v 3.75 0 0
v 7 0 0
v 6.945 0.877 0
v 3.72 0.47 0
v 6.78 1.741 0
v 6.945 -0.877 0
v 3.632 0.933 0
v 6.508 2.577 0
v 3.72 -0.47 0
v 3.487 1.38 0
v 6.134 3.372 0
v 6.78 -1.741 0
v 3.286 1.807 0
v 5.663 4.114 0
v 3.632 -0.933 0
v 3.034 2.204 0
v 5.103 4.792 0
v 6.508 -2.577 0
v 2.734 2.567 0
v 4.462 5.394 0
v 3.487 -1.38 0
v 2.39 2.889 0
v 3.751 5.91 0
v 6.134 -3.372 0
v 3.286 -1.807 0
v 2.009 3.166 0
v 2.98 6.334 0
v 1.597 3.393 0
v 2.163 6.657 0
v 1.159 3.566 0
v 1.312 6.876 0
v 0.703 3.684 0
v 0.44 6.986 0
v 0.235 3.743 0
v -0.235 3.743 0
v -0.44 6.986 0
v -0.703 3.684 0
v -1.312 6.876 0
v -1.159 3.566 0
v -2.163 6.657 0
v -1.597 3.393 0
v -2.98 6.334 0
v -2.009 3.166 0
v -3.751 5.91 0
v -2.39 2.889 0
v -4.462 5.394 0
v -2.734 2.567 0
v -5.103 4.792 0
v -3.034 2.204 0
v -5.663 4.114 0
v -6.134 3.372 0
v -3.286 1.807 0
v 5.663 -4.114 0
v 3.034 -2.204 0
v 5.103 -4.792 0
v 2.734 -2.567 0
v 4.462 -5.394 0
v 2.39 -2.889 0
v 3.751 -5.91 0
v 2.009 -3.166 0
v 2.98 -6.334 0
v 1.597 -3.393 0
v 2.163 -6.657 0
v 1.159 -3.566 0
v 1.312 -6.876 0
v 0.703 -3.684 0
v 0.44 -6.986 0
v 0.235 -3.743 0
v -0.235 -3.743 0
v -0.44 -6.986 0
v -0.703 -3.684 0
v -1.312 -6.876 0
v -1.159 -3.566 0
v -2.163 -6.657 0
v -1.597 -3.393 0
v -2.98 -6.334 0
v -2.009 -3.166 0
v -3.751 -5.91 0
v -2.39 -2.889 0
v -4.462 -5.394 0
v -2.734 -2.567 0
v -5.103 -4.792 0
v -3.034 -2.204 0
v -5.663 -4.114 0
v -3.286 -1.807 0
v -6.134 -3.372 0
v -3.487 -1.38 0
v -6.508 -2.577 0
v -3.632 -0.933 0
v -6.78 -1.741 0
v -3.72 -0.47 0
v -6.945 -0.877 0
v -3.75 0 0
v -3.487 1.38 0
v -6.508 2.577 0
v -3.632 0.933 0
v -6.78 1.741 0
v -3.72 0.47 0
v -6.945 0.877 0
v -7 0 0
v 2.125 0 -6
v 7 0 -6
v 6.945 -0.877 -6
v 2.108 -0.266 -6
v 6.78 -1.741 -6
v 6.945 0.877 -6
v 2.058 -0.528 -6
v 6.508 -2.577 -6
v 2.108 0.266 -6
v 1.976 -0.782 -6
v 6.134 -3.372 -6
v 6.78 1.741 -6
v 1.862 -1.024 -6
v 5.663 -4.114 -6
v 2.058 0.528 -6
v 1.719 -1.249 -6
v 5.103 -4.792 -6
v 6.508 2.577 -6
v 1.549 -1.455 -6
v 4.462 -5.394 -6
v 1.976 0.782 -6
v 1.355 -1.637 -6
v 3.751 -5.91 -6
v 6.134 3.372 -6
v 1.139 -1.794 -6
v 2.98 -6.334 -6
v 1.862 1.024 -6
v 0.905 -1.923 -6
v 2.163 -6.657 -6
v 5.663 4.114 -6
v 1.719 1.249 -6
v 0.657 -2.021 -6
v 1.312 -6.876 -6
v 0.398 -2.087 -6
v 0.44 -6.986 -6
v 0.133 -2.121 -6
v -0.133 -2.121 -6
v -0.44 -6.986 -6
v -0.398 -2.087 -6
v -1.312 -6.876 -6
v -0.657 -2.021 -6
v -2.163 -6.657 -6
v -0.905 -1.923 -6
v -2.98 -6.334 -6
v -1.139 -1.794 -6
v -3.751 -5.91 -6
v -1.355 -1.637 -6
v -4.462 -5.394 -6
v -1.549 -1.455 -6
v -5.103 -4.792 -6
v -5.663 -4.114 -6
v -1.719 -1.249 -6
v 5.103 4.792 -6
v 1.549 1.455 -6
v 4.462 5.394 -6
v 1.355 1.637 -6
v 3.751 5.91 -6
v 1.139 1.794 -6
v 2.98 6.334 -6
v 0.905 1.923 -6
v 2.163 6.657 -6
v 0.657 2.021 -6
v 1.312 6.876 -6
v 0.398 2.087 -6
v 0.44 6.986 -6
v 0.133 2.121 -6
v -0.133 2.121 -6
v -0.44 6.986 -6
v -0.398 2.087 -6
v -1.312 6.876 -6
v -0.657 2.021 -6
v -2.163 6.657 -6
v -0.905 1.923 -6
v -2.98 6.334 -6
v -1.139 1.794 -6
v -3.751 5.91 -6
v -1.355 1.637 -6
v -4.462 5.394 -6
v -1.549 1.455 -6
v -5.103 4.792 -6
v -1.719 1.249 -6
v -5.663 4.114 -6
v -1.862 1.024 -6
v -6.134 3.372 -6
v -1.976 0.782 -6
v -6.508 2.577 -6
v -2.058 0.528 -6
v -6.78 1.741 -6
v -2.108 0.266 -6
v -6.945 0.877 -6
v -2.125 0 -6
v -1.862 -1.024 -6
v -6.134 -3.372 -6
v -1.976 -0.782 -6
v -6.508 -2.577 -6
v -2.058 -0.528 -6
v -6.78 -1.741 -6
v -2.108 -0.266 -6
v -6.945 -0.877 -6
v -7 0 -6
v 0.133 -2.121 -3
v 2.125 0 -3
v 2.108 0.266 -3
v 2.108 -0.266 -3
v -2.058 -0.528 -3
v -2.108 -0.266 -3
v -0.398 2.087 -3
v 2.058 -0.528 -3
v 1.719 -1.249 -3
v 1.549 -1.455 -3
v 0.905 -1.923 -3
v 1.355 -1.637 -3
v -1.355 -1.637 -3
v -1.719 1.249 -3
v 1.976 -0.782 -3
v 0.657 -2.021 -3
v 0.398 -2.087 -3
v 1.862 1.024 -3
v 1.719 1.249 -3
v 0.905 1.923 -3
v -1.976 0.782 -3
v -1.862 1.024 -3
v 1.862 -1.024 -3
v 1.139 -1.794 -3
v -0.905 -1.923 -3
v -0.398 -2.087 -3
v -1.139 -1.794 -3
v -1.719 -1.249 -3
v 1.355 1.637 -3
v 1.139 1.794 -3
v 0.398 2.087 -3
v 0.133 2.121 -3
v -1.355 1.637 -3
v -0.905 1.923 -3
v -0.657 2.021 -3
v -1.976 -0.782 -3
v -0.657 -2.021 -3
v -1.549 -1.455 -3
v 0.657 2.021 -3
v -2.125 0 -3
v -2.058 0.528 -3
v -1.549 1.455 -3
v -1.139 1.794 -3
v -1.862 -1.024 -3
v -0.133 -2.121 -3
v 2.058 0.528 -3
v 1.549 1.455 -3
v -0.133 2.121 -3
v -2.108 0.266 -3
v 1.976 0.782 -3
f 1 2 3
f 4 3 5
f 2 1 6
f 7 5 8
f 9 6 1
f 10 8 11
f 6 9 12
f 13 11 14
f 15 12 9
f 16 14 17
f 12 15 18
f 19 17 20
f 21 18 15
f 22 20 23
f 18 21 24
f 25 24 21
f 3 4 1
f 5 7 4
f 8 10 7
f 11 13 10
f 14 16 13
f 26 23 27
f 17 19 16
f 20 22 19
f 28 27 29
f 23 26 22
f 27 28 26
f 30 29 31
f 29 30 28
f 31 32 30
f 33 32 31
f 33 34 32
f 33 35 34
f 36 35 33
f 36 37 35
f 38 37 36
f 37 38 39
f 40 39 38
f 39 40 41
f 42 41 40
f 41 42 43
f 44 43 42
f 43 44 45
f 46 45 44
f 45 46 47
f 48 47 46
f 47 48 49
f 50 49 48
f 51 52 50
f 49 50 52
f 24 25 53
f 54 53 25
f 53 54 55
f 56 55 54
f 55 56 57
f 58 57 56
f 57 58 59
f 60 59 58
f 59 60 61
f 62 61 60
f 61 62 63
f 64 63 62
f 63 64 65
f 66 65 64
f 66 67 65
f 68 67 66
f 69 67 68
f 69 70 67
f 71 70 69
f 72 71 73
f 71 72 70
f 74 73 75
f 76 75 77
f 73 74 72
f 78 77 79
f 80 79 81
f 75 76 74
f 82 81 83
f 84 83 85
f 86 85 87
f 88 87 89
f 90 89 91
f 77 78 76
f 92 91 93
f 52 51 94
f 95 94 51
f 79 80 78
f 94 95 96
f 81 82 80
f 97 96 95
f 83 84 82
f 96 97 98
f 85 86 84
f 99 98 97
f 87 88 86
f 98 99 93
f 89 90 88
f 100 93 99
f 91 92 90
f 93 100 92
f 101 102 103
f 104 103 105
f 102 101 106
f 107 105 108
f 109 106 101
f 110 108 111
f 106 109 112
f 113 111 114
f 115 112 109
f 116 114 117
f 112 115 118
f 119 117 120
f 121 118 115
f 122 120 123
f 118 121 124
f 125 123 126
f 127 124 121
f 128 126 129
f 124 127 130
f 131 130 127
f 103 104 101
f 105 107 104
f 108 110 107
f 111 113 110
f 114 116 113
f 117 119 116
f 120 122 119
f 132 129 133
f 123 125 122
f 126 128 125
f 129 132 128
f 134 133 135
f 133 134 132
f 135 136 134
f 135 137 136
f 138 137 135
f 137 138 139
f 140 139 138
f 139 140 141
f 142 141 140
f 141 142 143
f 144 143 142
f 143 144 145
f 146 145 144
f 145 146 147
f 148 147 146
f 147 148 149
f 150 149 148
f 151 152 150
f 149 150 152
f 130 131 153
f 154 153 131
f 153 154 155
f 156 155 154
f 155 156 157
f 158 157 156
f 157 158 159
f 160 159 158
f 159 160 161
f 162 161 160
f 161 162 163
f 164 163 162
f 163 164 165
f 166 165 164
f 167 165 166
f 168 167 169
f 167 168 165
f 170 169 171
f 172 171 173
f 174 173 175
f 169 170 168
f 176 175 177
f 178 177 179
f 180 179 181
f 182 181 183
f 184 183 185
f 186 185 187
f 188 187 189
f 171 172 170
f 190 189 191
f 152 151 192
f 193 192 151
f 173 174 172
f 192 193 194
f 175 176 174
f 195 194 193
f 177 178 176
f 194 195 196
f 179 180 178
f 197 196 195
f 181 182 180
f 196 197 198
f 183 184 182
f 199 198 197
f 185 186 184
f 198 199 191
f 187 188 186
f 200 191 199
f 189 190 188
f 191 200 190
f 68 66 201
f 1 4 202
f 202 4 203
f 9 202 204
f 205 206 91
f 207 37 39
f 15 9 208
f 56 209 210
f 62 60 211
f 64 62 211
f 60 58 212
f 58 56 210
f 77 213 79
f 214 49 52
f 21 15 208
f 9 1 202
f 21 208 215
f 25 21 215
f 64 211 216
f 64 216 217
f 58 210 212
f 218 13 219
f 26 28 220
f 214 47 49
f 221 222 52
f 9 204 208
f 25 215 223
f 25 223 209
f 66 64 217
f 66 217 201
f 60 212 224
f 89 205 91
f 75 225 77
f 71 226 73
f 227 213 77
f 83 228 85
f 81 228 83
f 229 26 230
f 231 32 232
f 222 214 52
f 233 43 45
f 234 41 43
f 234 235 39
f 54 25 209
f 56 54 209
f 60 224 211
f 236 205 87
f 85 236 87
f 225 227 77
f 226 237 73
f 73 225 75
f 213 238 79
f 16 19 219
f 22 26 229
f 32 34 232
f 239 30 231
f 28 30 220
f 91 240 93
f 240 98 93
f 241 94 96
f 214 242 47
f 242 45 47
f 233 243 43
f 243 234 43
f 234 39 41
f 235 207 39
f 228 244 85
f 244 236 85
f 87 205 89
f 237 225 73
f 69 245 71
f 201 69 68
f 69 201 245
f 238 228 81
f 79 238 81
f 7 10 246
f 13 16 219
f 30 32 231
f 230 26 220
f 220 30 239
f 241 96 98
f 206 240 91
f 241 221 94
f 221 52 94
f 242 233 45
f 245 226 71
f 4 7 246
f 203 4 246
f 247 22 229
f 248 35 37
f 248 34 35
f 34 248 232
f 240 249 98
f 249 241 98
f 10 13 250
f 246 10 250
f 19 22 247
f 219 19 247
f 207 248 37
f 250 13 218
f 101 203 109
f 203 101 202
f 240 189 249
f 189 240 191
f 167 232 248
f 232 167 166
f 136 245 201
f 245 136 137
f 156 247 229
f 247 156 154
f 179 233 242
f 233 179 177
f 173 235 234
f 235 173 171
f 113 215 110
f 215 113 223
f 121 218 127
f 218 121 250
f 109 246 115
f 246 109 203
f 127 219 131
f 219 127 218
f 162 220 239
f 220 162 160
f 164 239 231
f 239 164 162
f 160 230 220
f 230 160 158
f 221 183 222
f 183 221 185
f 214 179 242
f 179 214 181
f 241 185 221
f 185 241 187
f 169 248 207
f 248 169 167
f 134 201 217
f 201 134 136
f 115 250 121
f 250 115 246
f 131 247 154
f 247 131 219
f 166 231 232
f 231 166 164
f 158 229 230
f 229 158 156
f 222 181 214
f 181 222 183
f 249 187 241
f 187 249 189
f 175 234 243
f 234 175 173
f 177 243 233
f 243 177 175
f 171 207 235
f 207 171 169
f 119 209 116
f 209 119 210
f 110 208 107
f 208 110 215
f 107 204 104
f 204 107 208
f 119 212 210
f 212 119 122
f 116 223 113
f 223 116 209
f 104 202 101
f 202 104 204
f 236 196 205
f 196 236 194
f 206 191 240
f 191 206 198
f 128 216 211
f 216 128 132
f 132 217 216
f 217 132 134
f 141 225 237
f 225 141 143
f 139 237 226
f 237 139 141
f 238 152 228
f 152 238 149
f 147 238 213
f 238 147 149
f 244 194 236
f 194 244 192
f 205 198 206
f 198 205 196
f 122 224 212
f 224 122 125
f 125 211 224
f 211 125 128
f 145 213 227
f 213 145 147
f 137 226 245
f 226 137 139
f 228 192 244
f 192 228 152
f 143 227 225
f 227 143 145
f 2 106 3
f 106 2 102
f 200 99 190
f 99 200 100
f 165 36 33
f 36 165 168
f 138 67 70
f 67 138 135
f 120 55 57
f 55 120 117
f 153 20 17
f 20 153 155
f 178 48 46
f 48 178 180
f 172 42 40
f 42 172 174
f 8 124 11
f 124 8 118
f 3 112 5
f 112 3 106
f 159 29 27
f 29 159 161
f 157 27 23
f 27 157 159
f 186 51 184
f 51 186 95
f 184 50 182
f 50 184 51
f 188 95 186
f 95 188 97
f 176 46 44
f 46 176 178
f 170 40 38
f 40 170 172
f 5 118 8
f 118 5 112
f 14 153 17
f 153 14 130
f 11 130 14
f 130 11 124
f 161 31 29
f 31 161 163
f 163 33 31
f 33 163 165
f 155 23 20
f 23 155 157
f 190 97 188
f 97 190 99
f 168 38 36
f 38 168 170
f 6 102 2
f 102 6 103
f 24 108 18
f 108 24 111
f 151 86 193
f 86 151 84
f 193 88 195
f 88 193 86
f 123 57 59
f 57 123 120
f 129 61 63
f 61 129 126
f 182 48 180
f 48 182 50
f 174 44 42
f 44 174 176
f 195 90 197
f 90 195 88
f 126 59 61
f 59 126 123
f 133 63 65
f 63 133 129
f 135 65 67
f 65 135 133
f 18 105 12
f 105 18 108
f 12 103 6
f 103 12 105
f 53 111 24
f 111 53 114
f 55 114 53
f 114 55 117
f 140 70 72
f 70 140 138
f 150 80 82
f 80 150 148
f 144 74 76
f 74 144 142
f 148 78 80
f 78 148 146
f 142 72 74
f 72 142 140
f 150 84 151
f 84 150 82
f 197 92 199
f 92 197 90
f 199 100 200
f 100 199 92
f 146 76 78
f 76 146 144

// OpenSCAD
$fn = 50;


difference() {
	union() {
		translate(v = [0, 0, -6.0000000000]) {
			cylinder(h = 6, r = 7.0000000000);
		}
		cylinder(h = 0, r = 17.0000000000);
	}
	union() {
		translate(v = [0, 0, 0]) {
			rotate(a = [0, 0, 0]) {
				difference() {
					union() {
						#translate(v = [0, 0, -6.0000000000]) {
							cylinder(h = 6, r = 2.0000000000);
						}
						#translate(v = [0, 0, -3]) {
							cylinder(h = 3, r1 = 2.1250000000, r2 = 3.7500000000);
						}
						#translate(v = [0, 0, -6.0000000000]) {
							cylinder(h = 6, r = 2.1250000000);
						}
						#translate(v = [0, 0, -6.0000000000]) {
							cylinder(h = 6, r = 2.0000000000);
						}
					}
					union();
				}
			}
		}
	}
}
